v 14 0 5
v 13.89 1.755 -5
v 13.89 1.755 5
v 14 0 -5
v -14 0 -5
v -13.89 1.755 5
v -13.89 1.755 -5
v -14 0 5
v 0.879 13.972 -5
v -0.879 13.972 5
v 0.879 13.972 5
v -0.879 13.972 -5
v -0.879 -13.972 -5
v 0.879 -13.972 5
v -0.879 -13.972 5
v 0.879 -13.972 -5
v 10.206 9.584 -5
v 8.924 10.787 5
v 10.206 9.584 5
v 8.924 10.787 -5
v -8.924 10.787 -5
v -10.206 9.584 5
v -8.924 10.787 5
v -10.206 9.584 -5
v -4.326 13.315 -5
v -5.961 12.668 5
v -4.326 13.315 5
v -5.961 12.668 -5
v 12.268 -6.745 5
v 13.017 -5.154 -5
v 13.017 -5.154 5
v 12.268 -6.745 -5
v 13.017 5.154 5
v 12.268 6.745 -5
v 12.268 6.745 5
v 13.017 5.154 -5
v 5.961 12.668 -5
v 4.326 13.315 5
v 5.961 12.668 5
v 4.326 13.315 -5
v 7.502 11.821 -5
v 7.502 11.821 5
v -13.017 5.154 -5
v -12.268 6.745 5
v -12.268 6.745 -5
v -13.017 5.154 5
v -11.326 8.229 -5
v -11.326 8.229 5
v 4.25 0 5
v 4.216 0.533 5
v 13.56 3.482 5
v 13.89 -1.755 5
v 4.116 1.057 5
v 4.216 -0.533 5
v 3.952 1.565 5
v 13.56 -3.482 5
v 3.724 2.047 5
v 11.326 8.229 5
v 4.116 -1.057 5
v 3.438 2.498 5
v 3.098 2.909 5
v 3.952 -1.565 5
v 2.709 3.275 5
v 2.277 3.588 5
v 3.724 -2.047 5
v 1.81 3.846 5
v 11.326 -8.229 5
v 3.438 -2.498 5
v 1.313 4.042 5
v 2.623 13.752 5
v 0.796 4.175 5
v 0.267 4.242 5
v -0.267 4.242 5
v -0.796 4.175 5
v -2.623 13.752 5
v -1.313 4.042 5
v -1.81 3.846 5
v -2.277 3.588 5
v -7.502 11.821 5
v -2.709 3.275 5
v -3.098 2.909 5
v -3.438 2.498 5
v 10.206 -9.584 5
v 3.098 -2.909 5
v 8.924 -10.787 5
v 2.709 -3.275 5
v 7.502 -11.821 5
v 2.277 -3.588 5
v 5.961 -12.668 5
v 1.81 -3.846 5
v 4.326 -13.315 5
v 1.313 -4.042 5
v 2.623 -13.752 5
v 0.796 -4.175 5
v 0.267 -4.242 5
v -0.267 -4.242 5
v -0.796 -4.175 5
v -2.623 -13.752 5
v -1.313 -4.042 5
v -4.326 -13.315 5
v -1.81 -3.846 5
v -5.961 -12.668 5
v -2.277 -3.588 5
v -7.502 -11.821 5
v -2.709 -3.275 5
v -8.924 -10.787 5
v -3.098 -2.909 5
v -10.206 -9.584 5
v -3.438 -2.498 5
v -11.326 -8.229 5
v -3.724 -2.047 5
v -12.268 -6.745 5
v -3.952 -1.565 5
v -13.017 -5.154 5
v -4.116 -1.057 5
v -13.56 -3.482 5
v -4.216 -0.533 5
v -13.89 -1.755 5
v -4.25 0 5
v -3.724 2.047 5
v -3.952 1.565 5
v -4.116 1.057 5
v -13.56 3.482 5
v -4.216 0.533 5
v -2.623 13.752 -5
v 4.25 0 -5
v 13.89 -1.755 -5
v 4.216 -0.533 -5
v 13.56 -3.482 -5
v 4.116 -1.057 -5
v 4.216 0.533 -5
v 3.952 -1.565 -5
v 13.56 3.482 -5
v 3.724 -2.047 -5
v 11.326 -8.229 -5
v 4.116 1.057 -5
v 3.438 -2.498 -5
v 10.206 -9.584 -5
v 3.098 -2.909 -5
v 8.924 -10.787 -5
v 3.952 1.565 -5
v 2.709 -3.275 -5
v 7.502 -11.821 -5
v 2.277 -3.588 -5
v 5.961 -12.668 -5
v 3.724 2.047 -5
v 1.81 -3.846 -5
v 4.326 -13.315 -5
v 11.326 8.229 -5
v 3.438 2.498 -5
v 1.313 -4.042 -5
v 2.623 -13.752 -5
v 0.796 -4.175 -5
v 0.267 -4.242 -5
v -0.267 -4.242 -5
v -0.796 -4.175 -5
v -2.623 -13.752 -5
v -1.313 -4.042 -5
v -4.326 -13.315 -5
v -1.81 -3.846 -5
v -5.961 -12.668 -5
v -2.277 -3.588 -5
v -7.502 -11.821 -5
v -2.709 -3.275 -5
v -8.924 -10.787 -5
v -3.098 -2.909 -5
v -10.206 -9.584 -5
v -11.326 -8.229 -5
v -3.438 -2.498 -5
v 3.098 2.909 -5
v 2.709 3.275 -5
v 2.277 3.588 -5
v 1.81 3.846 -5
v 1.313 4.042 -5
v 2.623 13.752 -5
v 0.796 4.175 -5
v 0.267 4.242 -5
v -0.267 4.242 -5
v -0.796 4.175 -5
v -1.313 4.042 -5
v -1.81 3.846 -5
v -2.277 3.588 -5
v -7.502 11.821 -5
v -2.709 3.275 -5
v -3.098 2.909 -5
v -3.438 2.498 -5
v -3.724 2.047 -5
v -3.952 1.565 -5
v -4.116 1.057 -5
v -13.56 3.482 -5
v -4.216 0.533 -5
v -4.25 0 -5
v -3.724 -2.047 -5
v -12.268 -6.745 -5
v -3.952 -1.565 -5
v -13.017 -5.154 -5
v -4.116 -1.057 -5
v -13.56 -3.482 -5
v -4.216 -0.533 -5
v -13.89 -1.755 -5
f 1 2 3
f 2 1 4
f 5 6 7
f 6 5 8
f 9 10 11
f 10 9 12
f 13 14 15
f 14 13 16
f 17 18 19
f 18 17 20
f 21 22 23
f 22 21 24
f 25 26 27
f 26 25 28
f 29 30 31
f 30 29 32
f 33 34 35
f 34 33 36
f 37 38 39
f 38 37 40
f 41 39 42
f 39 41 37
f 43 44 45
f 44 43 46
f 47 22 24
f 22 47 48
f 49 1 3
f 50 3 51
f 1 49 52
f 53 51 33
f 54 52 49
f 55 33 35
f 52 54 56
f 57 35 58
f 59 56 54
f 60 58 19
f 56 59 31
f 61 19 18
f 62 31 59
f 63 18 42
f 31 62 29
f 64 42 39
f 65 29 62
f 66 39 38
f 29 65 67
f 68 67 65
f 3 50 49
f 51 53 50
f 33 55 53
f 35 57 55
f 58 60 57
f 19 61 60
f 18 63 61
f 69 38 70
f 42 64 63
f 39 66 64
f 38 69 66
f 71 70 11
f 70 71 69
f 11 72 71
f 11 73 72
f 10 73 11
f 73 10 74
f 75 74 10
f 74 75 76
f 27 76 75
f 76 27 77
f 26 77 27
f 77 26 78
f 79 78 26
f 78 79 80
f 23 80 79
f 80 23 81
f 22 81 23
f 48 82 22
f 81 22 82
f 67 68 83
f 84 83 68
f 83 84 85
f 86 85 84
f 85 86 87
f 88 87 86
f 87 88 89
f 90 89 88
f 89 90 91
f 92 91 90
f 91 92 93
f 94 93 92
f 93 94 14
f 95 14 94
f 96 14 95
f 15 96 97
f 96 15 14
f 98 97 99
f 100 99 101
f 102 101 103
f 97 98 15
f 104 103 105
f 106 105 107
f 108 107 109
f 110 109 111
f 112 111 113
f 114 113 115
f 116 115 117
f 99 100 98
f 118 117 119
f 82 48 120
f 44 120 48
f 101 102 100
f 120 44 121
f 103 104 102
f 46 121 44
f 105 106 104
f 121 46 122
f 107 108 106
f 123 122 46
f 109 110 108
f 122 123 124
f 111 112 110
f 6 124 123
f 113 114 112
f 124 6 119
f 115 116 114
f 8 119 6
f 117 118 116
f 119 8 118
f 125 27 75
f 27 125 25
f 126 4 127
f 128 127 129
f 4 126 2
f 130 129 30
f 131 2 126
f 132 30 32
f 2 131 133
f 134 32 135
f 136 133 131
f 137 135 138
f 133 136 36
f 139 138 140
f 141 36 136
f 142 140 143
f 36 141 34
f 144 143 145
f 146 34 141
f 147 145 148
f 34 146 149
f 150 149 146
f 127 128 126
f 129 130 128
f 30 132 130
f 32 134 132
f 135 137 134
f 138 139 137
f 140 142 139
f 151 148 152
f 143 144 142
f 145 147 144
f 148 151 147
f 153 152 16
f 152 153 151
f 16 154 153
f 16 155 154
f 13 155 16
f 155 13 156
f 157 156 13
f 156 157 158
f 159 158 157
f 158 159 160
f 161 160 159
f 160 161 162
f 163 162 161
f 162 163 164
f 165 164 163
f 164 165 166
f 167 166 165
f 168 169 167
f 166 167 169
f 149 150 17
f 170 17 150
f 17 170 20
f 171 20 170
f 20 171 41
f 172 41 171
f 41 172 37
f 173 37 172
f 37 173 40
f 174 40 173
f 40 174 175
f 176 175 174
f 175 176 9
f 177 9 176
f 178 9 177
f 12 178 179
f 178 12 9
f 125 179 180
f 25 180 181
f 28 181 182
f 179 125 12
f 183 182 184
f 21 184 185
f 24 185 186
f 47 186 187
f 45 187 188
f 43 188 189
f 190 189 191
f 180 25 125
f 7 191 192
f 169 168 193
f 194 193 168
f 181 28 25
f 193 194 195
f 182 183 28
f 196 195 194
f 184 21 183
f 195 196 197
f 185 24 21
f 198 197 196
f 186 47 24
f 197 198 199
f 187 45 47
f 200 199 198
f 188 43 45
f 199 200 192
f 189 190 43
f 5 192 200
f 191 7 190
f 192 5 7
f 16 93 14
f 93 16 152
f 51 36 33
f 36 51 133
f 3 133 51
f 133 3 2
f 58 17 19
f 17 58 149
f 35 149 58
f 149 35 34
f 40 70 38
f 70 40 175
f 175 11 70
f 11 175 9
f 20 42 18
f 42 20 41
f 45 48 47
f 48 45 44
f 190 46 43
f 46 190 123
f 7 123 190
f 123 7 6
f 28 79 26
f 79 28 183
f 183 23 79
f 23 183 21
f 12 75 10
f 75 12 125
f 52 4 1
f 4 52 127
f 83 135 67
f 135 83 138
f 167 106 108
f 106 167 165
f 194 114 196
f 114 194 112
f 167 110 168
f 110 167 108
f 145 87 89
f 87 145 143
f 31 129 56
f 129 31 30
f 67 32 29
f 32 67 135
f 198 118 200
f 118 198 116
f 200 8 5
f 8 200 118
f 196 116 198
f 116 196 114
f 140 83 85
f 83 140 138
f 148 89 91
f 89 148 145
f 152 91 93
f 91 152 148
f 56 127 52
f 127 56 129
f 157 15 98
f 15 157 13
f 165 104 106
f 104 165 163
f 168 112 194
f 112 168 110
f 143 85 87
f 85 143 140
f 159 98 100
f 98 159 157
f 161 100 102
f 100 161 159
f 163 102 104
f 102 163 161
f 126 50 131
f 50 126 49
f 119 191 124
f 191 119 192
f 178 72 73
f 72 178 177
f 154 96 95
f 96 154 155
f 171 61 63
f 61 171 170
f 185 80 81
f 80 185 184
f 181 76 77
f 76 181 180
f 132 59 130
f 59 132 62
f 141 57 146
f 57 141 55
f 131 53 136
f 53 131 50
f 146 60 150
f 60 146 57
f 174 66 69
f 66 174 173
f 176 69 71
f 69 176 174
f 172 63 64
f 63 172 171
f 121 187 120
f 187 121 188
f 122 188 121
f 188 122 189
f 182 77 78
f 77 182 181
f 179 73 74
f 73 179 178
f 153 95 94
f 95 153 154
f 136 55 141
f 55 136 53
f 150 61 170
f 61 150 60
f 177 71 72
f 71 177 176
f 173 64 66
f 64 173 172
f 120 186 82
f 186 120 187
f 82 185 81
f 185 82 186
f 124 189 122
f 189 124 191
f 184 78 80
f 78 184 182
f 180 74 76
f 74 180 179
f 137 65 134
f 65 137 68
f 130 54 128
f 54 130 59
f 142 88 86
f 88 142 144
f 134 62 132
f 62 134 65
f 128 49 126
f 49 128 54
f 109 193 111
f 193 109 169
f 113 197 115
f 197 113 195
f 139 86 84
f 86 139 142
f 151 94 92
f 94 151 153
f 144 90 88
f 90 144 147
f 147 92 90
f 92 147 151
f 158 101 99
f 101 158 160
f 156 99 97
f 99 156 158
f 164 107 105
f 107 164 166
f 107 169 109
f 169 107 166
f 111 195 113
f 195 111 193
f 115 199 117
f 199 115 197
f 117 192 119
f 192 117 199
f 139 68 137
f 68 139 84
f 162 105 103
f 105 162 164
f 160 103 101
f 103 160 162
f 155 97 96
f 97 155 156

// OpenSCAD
$fn = 50;


difference() {
	union() {
		translate(v = [0, 0, -5.0000000000]) {
			cylinder(h = 10, r = 14.0000000000);
		}
	}
	union() {
		translate(v = [0, 0, -100.0000000000]) {
			cylinder(h = 200, r = 4.2500000000);
		}
	}
}
